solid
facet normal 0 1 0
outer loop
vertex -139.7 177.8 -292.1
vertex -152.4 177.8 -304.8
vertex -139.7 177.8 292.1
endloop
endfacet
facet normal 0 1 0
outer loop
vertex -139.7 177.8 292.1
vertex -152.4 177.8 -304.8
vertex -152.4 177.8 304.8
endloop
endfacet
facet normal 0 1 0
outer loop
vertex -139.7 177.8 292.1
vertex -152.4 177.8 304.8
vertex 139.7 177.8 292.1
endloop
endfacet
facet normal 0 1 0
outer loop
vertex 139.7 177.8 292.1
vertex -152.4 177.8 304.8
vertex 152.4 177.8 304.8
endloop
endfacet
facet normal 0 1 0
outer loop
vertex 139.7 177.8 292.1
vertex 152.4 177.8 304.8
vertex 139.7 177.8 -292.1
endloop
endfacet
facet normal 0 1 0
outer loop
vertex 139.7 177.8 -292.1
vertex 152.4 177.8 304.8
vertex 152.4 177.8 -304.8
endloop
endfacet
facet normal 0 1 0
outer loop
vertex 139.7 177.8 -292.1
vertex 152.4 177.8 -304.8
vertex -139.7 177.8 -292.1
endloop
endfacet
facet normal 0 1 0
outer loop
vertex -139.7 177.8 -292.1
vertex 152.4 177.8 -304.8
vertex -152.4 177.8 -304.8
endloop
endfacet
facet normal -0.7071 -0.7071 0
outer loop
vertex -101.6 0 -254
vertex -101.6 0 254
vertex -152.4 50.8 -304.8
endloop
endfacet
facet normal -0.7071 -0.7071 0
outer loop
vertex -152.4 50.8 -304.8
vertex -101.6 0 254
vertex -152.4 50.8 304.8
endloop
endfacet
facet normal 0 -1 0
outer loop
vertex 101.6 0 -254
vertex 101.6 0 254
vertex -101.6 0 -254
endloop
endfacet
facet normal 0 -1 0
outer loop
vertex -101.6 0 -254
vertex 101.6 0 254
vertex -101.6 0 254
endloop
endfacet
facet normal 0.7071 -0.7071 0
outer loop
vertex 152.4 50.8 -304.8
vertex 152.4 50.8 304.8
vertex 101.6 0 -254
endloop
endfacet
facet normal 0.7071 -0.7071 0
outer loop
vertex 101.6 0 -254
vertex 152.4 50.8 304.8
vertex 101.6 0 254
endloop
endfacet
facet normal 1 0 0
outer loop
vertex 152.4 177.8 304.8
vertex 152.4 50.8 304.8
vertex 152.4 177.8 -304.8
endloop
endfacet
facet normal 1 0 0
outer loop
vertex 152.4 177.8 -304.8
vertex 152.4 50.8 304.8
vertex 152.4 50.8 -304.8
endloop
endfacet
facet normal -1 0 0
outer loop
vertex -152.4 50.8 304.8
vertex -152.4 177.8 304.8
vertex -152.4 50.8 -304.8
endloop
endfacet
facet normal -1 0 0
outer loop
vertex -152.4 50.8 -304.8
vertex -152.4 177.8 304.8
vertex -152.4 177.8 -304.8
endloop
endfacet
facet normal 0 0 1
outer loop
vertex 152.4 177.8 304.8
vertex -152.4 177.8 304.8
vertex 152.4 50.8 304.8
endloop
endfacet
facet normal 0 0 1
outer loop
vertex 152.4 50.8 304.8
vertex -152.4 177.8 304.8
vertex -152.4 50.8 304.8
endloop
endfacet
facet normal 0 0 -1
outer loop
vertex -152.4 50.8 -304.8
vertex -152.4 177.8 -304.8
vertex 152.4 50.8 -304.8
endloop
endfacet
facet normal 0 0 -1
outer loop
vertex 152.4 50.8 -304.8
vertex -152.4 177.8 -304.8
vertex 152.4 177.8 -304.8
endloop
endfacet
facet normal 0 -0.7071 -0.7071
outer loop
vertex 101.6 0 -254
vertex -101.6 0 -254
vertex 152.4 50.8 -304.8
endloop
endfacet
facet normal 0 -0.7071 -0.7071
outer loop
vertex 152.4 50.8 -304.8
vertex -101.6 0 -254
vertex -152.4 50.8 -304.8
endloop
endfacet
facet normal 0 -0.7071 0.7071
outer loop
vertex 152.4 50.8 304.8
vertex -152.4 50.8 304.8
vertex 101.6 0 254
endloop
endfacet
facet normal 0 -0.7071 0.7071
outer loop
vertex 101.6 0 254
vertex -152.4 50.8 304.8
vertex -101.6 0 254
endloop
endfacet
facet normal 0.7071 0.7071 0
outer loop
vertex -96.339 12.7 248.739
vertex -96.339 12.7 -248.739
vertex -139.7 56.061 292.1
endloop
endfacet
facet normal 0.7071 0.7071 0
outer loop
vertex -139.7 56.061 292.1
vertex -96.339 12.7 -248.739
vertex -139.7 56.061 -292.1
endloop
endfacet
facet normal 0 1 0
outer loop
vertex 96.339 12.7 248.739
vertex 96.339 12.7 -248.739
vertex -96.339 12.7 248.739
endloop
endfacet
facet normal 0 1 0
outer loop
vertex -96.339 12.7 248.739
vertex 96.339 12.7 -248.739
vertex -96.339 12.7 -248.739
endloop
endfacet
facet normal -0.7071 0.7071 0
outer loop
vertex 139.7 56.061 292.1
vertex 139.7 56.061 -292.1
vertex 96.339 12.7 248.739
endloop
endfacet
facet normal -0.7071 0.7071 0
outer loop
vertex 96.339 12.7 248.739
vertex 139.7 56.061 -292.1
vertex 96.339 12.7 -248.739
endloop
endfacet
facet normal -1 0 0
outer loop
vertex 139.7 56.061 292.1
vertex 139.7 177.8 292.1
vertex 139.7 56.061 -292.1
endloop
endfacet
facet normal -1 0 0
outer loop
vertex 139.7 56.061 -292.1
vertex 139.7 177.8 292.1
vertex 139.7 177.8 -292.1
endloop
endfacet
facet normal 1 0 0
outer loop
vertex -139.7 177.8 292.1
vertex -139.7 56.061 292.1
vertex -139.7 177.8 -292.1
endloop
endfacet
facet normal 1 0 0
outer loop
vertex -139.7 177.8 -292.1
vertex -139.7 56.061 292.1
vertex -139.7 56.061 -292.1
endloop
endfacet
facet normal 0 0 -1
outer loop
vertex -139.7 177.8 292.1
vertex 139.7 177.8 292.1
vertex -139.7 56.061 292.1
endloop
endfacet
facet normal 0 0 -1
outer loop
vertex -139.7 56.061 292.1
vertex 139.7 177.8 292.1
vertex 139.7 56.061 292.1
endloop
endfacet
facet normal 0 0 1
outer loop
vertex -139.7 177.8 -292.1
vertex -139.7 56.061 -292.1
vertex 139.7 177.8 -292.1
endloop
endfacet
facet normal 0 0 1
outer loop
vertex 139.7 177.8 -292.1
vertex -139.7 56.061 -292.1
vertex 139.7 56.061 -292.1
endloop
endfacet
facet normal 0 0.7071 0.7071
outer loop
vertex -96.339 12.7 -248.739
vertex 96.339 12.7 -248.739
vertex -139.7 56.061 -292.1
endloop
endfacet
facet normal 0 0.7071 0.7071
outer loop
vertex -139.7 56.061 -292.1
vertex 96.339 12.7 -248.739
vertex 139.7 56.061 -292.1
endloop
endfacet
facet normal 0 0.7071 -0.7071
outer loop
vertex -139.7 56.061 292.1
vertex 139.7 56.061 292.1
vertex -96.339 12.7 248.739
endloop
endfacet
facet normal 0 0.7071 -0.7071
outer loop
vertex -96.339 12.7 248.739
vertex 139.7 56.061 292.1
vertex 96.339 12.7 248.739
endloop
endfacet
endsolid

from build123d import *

# Parameters (mm, degrees)
BOSS_EXTRUDE1_DEPTH     = 304.8
CUT_EXTRUDE2_DEPTH      = 385.371747141
CUT_EXTRUDE2_DEPTH_BACK = 385.371747141
SHELL1_T                = -12.7


with BuildPart() as part:
    # Sketch1 → Boss-Extrude1 (new, symmetric)
    with BuildSketch(Plane.XY):
        Polygon((-101.6, 0), (101.6, 0), (152.4, 50.8), (152.4, 177.8), (-152.4, 177.8), (-152.4, 50.8), align=None)
    extrude(amount=BOSS_EXTRUDE1_DEPTH, both=True)

    # Sketch3 → Cut-Extrude2 (cut, two sides: drawn at the far end of the back side and taken through both)
    with BuildSketch(Plane(origin=(0, 0, 0), x_dir=(0, 0, -1), z_dir=(1, 0, 0)).offset(-CUT_EXTRUDE2_DEPTH_BACK)):
        Polygon((-304.8, 50.8), (-304.8, 0), (-254, 0), align=None)
        Polygon((304.8, 50.8), (304.8, 0), (254, 0), align=None)
    extrude(amount=CUT_EXTRUDE2_DEPTH + CUT_EXTRUDE2_DEPTH_BACK, mode=Mode.SUBTRACT)

    # Shell1
    shell1_openings = [part.faces().sort_by_distance(p)[0] for p in [
        (0, 177.8, 0),
    ]]
    offset(amount=SHELL1_T, openings=shell1_openings, kind=Kind.INTERSECTION)


solid = part.part
